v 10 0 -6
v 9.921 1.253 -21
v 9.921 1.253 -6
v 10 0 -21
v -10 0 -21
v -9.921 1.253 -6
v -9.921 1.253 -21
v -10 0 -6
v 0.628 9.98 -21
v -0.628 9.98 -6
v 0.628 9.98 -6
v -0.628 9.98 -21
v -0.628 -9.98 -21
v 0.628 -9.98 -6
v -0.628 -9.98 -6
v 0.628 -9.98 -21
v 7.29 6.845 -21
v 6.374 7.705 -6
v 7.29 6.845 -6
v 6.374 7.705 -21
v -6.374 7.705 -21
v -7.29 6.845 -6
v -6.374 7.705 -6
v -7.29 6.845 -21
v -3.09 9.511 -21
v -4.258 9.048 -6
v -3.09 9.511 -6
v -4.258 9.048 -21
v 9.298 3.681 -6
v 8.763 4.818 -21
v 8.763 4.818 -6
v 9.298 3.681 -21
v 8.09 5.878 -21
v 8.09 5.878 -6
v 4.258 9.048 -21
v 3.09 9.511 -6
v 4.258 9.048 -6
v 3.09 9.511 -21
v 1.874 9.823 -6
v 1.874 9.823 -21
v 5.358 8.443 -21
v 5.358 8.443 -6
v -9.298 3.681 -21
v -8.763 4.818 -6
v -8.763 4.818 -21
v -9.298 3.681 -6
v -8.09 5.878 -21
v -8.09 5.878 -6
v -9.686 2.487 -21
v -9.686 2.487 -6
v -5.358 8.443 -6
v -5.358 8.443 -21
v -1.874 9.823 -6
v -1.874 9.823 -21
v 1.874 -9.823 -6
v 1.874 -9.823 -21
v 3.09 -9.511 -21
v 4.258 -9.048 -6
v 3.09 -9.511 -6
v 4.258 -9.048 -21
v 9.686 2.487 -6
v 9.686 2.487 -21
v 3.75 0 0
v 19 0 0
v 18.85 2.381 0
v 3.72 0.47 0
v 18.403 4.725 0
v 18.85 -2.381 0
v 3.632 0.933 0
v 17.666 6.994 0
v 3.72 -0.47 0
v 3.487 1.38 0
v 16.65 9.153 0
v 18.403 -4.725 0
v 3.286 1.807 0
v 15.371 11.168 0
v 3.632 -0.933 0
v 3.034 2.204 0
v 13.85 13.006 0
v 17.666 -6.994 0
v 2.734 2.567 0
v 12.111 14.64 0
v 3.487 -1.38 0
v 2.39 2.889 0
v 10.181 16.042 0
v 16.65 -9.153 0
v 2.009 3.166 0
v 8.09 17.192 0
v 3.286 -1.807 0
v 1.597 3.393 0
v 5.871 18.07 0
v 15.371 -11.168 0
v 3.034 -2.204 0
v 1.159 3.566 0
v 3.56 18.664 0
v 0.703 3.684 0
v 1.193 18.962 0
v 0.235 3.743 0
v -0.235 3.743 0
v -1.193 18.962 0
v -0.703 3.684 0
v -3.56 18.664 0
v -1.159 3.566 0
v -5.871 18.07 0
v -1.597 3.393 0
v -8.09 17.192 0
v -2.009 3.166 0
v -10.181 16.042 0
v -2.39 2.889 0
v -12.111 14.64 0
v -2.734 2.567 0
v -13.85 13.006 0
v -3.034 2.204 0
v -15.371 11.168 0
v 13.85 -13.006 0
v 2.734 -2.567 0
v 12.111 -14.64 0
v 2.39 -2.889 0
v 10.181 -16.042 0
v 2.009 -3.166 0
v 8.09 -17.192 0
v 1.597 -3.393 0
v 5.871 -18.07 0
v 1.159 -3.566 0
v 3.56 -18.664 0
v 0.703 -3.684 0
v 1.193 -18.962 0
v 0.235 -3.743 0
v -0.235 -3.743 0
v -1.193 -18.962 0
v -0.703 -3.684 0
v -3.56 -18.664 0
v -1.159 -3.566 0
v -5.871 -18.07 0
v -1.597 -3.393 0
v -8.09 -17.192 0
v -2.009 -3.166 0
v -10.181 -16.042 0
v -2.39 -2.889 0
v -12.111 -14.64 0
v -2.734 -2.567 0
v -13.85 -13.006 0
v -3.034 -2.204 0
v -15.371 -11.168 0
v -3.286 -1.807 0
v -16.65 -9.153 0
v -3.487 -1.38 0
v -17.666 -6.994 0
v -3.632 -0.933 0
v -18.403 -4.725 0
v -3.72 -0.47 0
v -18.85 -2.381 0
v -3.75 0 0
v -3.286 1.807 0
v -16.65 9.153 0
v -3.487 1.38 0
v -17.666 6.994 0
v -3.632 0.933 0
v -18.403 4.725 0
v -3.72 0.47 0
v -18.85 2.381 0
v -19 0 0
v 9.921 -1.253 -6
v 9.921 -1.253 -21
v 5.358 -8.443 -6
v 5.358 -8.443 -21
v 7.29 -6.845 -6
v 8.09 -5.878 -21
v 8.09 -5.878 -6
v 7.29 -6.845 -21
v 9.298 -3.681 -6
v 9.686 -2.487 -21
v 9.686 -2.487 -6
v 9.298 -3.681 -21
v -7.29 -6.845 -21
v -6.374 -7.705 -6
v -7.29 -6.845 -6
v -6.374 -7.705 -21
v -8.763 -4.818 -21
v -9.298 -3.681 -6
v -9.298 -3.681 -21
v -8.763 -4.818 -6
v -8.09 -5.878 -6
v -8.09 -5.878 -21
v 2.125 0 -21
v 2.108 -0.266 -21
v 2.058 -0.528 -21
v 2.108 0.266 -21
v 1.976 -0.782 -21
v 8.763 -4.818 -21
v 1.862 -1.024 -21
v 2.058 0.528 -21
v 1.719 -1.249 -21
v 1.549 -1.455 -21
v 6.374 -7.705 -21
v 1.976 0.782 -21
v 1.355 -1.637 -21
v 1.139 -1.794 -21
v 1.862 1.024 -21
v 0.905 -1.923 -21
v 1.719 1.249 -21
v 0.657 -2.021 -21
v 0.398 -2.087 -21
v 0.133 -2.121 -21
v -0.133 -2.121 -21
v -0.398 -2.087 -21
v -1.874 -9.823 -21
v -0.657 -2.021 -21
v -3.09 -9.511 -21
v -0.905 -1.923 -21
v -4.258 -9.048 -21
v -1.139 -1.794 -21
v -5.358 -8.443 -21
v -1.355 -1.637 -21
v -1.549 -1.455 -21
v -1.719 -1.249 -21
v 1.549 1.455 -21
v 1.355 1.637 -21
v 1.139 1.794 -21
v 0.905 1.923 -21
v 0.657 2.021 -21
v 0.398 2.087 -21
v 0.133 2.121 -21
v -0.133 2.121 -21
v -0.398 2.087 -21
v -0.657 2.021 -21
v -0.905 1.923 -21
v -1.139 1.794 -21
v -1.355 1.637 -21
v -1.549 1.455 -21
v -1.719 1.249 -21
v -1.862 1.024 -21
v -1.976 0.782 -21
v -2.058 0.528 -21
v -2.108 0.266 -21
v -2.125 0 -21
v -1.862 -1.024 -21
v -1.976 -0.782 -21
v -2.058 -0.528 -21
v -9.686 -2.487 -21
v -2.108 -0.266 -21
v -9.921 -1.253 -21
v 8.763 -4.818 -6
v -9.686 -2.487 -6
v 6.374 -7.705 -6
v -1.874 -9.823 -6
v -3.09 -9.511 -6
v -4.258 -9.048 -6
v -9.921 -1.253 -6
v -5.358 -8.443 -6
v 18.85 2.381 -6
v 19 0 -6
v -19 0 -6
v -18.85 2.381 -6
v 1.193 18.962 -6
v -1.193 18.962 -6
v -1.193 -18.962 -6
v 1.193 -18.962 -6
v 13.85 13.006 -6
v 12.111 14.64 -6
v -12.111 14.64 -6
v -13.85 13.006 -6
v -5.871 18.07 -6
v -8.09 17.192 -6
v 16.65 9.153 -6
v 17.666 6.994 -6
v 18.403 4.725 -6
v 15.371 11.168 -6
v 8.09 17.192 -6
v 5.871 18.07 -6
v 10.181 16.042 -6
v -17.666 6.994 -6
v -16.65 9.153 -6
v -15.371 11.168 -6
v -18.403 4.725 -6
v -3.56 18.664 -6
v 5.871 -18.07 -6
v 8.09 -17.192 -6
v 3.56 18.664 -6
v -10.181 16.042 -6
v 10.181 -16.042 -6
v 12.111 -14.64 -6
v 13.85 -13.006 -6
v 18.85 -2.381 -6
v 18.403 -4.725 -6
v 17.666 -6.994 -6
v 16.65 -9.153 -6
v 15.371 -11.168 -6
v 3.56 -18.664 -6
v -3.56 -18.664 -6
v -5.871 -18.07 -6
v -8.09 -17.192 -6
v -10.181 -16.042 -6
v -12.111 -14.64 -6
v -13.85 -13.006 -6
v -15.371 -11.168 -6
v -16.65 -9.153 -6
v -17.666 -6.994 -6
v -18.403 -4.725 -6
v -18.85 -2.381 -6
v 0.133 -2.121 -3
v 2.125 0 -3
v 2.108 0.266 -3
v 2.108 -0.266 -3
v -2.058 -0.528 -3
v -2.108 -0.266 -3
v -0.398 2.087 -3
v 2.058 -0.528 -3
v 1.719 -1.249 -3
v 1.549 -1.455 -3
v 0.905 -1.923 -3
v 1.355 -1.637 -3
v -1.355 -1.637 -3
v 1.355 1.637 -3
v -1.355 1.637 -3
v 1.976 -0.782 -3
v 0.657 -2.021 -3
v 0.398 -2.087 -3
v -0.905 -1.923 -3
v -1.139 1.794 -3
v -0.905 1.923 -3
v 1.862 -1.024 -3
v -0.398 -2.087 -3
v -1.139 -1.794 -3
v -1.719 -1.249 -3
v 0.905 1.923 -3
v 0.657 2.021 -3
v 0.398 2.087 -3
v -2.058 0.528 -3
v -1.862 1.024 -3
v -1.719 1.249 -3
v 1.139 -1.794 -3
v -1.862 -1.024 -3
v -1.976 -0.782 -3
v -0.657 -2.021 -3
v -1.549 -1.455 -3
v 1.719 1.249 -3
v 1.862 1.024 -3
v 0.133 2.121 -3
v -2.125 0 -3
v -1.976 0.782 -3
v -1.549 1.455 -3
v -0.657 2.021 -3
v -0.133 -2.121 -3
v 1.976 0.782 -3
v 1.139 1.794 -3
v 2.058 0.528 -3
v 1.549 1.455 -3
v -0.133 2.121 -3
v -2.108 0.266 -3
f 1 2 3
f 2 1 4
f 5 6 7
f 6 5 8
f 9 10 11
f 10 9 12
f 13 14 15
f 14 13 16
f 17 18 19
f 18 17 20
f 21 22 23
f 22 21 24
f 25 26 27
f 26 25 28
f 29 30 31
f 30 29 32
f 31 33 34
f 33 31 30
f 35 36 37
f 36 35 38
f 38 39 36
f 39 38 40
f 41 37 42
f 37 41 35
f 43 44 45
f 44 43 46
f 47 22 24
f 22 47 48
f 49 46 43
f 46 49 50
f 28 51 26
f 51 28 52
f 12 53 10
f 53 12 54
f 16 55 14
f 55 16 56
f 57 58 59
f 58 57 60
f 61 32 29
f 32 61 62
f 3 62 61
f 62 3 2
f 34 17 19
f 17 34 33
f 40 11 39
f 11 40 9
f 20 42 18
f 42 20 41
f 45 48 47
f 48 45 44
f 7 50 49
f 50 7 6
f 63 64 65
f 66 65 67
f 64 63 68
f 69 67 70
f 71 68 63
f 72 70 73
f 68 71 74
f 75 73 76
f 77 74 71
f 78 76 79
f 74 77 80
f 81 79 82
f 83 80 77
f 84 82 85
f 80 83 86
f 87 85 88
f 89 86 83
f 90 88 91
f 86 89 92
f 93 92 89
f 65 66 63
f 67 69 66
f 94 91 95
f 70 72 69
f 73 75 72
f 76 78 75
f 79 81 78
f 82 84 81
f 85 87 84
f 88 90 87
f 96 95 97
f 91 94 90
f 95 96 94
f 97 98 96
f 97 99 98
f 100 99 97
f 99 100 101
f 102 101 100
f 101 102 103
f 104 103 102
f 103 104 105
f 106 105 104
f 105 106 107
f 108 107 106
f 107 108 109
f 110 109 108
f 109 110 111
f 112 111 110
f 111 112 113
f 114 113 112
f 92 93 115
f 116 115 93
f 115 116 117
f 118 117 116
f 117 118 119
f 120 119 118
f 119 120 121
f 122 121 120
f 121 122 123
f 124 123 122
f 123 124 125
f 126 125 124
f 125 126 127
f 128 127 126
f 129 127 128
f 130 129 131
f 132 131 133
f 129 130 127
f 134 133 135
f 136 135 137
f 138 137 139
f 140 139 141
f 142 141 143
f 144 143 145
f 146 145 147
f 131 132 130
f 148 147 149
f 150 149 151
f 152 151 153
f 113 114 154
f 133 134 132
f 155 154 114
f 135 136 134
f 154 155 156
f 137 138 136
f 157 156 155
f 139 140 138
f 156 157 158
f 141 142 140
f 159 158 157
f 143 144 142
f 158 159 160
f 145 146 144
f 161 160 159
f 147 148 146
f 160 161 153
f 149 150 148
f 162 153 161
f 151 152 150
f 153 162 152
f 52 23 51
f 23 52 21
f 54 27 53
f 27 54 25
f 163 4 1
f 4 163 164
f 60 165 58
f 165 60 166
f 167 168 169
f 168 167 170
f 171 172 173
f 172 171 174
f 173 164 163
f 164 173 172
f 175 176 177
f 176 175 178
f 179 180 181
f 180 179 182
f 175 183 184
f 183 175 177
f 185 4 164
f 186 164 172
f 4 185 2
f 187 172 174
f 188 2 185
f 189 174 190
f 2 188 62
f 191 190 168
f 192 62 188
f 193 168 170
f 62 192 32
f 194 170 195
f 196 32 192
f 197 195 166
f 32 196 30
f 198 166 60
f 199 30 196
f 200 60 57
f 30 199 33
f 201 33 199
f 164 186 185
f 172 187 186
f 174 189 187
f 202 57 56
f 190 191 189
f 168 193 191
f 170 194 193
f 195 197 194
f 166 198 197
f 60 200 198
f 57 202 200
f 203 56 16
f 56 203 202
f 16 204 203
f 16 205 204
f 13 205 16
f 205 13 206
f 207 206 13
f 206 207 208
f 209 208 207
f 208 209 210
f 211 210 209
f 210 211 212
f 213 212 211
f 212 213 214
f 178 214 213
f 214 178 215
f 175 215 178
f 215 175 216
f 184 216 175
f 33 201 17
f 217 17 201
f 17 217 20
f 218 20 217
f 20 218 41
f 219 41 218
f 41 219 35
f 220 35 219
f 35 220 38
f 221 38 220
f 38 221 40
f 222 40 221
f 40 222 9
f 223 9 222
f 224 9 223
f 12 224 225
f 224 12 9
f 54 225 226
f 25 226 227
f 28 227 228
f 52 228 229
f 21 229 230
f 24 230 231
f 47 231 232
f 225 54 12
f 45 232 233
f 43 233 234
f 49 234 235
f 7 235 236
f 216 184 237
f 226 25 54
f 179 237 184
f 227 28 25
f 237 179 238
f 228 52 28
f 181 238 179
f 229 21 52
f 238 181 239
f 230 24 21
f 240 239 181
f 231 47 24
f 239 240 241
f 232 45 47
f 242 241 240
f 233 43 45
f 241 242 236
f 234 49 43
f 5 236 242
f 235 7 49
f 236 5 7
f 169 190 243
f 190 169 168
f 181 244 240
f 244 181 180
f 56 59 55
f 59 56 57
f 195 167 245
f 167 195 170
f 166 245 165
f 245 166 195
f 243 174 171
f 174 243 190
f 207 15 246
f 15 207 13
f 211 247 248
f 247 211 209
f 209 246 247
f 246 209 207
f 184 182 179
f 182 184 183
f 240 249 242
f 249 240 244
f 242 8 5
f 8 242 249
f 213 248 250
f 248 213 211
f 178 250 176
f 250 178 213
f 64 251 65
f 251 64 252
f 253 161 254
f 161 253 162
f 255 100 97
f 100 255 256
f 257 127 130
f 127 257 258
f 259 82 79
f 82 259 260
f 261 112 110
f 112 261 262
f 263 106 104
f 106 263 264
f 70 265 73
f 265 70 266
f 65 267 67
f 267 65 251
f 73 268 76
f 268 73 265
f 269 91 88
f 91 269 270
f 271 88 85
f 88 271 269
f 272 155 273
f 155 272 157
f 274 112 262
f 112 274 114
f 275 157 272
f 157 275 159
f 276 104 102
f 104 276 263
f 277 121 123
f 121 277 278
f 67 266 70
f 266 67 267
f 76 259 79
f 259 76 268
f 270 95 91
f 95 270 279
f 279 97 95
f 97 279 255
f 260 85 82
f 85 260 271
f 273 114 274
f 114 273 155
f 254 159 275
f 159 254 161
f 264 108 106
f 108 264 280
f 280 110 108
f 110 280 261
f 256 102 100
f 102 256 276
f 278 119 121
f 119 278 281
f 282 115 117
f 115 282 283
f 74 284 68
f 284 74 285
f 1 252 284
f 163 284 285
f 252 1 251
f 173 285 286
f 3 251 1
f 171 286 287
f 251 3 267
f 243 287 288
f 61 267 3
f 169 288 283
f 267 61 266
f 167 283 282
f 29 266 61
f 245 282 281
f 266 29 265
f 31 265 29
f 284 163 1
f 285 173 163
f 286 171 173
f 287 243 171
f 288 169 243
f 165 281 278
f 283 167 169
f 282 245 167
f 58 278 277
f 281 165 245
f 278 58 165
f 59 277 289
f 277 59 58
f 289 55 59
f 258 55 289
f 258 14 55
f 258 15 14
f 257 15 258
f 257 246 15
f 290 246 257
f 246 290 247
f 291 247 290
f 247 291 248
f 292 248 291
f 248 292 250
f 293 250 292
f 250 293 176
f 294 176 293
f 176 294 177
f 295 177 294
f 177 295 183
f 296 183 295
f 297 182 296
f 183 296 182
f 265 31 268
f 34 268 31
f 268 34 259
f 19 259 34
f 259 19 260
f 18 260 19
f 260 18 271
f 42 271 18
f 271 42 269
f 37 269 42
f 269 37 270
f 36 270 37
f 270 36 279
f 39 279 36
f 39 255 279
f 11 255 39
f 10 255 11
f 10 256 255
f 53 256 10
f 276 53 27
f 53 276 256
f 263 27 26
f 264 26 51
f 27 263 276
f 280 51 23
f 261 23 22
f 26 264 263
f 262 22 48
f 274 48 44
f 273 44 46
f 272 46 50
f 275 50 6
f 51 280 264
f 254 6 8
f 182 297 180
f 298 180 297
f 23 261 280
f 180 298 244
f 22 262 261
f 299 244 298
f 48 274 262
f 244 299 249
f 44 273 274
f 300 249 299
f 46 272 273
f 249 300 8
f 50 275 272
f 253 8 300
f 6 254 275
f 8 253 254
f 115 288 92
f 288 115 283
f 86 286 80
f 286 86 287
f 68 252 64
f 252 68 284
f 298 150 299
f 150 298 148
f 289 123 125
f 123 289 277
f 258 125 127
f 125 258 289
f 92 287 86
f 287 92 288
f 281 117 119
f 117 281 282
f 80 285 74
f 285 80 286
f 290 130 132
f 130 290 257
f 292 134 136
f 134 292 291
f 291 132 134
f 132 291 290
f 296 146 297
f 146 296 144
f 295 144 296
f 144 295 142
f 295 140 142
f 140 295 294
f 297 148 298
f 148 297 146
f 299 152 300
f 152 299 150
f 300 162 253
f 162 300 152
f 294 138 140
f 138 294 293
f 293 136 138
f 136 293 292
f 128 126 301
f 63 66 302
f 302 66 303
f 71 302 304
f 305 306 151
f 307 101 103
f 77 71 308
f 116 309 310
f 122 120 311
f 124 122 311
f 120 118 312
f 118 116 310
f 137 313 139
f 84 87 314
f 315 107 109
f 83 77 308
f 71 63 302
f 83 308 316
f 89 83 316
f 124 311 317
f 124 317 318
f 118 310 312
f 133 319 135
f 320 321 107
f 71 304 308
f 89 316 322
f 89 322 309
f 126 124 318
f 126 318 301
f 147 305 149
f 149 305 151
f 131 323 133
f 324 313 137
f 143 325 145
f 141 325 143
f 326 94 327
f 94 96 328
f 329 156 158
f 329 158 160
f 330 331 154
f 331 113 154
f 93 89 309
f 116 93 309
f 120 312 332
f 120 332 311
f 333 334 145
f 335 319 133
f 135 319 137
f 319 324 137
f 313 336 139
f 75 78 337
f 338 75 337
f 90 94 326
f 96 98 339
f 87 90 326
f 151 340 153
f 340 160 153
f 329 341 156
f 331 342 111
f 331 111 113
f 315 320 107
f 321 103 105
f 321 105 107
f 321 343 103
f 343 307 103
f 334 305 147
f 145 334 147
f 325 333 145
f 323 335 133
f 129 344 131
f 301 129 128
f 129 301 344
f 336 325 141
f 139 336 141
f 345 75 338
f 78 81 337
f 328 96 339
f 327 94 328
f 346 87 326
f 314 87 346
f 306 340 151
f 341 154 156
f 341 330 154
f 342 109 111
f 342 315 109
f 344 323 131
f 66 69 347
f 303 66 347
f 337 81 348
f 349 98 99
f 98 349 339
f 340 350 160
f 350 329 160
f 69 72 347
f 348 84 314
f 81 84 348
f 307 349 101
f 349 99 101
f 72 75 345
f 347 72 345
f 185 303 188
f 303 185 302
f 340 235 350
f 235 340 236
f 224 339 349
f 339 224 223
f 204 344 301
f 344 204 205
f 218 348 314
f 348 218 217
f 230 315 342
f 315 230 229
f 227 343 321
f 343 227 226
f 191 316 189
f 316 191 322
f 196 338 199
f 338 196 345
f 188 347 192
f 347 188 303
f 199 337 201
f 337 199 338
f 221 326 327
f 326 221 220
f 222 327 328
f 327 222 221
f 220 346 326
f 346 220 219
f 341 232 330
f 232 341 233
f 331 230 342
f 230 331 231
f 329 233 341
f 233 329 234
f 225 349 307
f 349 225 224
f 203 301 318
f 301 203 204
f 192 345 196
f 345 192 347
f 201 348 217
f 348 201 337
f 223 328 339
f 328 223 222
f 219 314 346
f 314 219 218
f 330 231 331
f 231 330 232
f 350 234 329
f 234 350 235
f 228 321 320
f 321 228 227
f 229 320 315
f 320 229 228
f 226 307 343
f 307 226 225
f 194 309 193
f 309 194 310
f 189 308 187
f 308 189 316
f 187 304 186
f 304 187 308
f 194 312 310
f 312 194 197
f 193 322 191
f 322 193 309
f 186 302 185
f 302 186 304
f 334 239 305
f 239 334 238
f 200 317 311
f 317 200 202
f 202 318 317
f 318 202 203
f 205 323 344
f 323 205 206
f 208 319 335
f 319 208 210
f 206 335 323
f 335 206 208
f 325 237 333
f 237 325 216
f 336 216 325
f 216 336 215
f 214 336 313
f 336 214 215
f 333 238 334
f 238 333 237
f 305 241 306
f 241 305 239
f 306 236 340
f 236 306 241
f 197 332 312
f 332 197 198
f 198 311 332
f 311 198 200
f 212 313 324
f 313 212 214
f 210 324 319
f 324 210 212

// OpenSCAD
$fn = 50;


difference() {
	union() {
		translate(v = [0, 0, -21.0000000000]) {
			cylinder(h = 21, r = 10.0000000000);
		}
		translate(v = [0, 0, -6.0000000000]) {
			cylinder(h = 6, r = 19.0000000000);
		}
	}
	union() {
		translate(v = [0, 0, 0]) {
			rotate(a = [0, 0, 0]) {
				difference() {
					union() {
						#translate(v = [0, 0, -21.0000000000]) {
							cylinder(h = 21, r = 2.0000000000);
						}
						#translate(v = [0, 0, -3]) {
							cylinder(h = 3, r = 10.0000000000, r1 = 2.1250000000, r2 = 3.7500000000);
						}
						#translate(v = [0, 0, -21.0000000000]) {
							cylinder(h = 21, r = 2.1250000000);
						}
						#translate(v = [0, 0, -21.0000000000]) {
							cylinder(h = 21, r = 2.0000000000);
						}
					}
					union();
				}
			}
		}
	}
}
